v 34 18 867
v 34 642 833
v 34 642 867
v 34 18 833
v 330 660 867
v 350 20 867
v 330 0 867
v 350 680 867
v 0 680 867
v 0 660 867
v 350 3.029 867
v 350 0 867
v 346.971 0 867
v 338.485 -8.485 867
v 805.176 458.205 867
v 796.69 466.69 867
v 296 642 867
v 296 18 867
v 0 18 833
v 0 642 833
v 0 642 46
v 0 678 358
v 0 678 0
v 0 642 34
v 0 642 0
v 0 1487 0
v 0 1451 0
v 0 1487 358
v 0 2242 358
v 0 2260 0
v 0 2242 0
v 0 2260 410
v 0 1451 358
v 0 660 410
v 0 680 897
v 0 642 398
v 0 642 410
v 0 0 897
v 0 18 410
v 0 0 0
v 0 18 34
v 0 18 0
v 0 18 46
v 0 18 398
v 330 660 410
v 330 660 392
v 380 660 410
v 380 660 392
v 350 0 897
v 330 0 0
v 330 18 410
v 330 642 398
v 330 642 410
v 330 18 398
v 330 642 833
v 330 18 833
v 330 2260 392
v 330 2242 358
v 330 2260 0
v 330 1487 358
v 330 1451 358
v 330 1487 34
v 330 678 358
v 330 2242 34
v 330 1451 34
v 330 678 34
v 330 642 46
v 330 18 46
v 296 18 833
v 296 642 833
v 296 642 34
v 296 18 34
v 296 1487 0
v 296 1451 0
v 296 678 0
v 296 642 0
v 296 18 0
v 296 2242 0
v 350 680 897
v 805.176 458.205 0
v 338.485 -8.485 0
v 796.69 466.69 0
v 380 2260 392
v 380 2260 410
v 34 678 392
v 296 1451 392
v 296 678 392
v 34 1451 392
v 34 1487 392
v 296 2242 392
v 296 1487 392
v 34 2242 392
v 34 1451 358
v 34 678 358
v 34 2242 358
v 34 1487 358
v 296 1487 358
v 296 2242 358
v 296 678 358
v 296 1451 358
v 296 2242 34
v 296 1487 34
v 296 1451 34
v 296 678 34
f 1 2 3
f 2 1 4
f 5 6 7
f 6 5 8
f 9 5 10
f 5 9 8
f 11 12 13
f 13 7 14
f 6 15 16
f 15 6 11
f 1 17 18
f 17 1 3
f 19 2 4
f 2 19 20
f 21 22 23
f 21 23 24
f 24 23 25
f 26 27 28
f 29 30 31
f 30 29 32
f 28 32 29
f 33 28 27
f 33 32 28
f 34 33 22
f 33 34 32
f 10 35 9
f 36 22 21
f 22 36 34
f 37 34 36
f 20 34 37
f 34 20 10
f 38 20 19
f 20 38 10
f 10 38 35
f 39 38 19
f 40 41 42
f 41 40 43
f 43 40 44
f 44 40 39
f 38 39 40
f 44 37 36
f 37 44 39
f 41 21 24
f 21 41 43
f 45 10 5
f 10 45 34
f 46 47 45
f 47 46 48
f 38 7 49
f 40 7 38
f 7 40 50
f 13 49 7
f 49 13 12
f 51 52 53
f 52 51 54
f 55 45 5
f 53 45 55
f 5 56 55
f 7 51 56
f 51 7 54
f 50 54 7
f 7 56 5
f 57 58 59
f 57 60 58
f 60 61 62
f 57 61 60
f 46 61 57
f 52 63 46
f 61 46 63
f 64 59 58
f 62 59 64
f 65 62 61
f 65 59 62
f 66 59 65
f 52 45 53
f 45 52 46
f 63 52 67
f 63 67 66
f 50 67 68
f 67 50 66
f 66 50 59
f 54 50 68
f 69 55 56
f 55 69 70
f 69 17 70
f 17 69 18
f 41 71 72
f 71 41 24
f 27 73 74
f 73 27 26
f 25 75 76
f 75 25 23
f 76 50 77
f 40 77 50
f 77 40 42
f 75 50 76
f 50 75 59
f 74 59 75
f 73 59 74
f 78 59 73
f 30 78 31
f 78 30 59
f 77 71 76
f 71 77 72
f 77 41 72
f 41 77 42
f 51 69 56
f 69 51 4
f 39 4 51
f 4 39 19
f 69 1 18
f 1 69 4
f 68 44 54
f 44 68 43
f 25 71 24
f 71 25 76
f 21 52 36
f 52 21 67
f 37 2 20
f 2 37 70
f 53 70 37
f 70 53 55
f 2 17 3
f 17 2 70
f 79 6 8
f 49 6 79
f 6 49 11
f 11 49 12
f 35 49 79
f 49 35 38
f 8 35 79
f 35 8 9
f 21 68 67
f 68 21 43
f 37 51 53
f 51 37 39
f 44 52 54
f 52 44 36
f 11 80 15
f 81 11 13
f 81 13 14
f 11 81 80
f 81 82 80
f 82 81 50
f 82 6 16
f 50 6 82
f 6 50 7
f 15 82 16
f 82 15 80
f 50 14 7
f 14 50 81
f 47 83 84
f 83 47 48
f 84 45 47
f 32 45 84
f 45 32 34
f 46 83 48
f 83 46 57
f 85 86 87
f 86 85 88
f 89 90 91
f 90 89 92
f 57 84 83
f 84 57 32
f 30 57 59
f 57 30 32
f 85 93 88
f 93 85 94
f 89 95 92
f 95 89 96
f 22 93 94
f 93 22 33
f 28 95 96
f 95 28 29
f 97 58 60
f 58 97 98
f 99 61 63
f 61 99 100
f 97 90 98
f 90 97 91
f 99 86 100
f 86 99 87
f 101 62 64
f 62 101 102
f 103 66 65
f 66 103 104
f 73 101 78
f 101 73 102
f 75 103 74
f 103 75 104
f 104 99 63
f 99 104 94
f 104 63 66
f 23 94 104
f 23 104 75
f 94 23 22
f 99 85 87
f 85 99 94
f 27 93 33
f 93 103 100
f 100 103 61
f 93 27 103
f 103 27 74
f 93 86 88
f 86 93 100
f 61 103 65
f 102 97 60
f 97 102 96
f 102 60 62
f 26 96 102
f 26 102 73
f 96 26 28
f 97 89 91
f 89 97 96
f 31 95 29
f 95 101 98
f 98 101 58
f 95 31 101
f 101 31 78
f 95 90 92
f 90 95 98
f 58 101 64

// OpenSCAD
$fn = 50;

debug = true;
debug = false;

depth = 330;

cabinet_height = 897;
cabinet_width = 660;
cabinet_overhang = 20;
cabinet_top_thickness = 30;

bench_height = 450 - 40;
bench_width = 1600;
bench_overhang = 50;
bench_top_thickness = 18;

plywood_thickness = 18;

//

Cabinet();
Bench();

//

module Cabinet() {
  // Skåp
  if (debug) {
    color("#80000085")
    %Cube(depth, cabinet_width, cabinet_height);
  }

    // bärlina bak uppe
    translate([0, 0, cabinet_height - 34 - cabinet_top_thickness]) 
    34x34(cabinet_width);

    // "bärlina" fram uppe
    translate([depth - 34, 0, cabinet_height - 34 - cabinet_top_thickness]) 
    34x34(cabinet_width);

    // "bärlina" fram nere
    translate([depth - 34, 0, 0]) 
    34x34(cabinet_width);

  // Väggar
  Cube(depth, plywood_thickness, cabinet_height - cabinet_top_thickness);

  translate([0, cabinet_width - plywood_thickness, 0]) 
  Cube(depth, plywood_thickness, cabinet_height - cabinet_top_thickness);

  // Skiva
  translate([0, 0, cabinet_height - cabinet_top_thickness]) 
  Cube(depth + cabinet_overhang, cabinet_width + cabinet_overhang, cabinet_top_thickness);

  // hyllplan
  translate([0, 0, 34]) 
  Cube(depth, cabinet_width, 12);

  translate([0, 0, bench_height - 12]) 
  Cube(depth, cabinet_width, 12);

  // dörr
  translate([depth, 0, 0])
  Rotate([0, 0, -45 - 45 * sin($t*360)]) 
  Cube(12, cabinet_width, cabinet_height - cabinet_top_thickness);
}

module Bench() {
  // Bänk
  translate([0, cabinet_width, 0]) {
    if (debug)
    color("#80000085")
    %Cube(depth, bench_width, bench_height);

    // skiva
    translate([0, 0, bench_height - bench_top_thickness]) 
    Cube(depth + bench_overhang, bench_width, bench_top_thickness);

    // bärlina bak uppe
    translate([0, 0, bench_height - 34 - bench_top_thickness]) 
    34x34(bench_width);

    // "bärlina" fram uppe
    translate([depth - 34, 0, bench_height - 34 - bench_top_thickness]) 
    34x34(bench_width);

    // "bärlina" fram nere
    translate([depth - 34, 0, 0]) 
    34x34(bench_width);

    // legs
    translate([0, 0, 0])
    Cube(depth, plywood_thickness, bench_height - bench_top_thickness);

    translate([0, bench_width/2 - plywood_thickness/2, 0])
    Cube(depth, plywood_thickness, bench_height - bench_top_thickness);
    translate([0, bench_width/2 + plywood_thickness/2, 0])
    Cube(depth, plywood_thickness, bench_height - bench_top_thickness);

    translate([0, bench_width - plywood_thickness, 0])
    Cube(depth, plywood_thickness, bench_height - bench_top_thickness);
  }
}

module 34x34(length = 100) {
  Cube(34, length, 34);
}

module Cube(width, length, height) {
  color("#ffeb91")
  cube([width, length, height]);
}

module Rotate(rotation = [0, 0, 0], originOffset = [0, 0, 0], debug = false) {
  translate(originOffset)
  rotate(rotation)
  translate(-originOffset)
  children();

  if (debug) {
    translate(originOffset) 
    #sphere(r=20);
  }
}
